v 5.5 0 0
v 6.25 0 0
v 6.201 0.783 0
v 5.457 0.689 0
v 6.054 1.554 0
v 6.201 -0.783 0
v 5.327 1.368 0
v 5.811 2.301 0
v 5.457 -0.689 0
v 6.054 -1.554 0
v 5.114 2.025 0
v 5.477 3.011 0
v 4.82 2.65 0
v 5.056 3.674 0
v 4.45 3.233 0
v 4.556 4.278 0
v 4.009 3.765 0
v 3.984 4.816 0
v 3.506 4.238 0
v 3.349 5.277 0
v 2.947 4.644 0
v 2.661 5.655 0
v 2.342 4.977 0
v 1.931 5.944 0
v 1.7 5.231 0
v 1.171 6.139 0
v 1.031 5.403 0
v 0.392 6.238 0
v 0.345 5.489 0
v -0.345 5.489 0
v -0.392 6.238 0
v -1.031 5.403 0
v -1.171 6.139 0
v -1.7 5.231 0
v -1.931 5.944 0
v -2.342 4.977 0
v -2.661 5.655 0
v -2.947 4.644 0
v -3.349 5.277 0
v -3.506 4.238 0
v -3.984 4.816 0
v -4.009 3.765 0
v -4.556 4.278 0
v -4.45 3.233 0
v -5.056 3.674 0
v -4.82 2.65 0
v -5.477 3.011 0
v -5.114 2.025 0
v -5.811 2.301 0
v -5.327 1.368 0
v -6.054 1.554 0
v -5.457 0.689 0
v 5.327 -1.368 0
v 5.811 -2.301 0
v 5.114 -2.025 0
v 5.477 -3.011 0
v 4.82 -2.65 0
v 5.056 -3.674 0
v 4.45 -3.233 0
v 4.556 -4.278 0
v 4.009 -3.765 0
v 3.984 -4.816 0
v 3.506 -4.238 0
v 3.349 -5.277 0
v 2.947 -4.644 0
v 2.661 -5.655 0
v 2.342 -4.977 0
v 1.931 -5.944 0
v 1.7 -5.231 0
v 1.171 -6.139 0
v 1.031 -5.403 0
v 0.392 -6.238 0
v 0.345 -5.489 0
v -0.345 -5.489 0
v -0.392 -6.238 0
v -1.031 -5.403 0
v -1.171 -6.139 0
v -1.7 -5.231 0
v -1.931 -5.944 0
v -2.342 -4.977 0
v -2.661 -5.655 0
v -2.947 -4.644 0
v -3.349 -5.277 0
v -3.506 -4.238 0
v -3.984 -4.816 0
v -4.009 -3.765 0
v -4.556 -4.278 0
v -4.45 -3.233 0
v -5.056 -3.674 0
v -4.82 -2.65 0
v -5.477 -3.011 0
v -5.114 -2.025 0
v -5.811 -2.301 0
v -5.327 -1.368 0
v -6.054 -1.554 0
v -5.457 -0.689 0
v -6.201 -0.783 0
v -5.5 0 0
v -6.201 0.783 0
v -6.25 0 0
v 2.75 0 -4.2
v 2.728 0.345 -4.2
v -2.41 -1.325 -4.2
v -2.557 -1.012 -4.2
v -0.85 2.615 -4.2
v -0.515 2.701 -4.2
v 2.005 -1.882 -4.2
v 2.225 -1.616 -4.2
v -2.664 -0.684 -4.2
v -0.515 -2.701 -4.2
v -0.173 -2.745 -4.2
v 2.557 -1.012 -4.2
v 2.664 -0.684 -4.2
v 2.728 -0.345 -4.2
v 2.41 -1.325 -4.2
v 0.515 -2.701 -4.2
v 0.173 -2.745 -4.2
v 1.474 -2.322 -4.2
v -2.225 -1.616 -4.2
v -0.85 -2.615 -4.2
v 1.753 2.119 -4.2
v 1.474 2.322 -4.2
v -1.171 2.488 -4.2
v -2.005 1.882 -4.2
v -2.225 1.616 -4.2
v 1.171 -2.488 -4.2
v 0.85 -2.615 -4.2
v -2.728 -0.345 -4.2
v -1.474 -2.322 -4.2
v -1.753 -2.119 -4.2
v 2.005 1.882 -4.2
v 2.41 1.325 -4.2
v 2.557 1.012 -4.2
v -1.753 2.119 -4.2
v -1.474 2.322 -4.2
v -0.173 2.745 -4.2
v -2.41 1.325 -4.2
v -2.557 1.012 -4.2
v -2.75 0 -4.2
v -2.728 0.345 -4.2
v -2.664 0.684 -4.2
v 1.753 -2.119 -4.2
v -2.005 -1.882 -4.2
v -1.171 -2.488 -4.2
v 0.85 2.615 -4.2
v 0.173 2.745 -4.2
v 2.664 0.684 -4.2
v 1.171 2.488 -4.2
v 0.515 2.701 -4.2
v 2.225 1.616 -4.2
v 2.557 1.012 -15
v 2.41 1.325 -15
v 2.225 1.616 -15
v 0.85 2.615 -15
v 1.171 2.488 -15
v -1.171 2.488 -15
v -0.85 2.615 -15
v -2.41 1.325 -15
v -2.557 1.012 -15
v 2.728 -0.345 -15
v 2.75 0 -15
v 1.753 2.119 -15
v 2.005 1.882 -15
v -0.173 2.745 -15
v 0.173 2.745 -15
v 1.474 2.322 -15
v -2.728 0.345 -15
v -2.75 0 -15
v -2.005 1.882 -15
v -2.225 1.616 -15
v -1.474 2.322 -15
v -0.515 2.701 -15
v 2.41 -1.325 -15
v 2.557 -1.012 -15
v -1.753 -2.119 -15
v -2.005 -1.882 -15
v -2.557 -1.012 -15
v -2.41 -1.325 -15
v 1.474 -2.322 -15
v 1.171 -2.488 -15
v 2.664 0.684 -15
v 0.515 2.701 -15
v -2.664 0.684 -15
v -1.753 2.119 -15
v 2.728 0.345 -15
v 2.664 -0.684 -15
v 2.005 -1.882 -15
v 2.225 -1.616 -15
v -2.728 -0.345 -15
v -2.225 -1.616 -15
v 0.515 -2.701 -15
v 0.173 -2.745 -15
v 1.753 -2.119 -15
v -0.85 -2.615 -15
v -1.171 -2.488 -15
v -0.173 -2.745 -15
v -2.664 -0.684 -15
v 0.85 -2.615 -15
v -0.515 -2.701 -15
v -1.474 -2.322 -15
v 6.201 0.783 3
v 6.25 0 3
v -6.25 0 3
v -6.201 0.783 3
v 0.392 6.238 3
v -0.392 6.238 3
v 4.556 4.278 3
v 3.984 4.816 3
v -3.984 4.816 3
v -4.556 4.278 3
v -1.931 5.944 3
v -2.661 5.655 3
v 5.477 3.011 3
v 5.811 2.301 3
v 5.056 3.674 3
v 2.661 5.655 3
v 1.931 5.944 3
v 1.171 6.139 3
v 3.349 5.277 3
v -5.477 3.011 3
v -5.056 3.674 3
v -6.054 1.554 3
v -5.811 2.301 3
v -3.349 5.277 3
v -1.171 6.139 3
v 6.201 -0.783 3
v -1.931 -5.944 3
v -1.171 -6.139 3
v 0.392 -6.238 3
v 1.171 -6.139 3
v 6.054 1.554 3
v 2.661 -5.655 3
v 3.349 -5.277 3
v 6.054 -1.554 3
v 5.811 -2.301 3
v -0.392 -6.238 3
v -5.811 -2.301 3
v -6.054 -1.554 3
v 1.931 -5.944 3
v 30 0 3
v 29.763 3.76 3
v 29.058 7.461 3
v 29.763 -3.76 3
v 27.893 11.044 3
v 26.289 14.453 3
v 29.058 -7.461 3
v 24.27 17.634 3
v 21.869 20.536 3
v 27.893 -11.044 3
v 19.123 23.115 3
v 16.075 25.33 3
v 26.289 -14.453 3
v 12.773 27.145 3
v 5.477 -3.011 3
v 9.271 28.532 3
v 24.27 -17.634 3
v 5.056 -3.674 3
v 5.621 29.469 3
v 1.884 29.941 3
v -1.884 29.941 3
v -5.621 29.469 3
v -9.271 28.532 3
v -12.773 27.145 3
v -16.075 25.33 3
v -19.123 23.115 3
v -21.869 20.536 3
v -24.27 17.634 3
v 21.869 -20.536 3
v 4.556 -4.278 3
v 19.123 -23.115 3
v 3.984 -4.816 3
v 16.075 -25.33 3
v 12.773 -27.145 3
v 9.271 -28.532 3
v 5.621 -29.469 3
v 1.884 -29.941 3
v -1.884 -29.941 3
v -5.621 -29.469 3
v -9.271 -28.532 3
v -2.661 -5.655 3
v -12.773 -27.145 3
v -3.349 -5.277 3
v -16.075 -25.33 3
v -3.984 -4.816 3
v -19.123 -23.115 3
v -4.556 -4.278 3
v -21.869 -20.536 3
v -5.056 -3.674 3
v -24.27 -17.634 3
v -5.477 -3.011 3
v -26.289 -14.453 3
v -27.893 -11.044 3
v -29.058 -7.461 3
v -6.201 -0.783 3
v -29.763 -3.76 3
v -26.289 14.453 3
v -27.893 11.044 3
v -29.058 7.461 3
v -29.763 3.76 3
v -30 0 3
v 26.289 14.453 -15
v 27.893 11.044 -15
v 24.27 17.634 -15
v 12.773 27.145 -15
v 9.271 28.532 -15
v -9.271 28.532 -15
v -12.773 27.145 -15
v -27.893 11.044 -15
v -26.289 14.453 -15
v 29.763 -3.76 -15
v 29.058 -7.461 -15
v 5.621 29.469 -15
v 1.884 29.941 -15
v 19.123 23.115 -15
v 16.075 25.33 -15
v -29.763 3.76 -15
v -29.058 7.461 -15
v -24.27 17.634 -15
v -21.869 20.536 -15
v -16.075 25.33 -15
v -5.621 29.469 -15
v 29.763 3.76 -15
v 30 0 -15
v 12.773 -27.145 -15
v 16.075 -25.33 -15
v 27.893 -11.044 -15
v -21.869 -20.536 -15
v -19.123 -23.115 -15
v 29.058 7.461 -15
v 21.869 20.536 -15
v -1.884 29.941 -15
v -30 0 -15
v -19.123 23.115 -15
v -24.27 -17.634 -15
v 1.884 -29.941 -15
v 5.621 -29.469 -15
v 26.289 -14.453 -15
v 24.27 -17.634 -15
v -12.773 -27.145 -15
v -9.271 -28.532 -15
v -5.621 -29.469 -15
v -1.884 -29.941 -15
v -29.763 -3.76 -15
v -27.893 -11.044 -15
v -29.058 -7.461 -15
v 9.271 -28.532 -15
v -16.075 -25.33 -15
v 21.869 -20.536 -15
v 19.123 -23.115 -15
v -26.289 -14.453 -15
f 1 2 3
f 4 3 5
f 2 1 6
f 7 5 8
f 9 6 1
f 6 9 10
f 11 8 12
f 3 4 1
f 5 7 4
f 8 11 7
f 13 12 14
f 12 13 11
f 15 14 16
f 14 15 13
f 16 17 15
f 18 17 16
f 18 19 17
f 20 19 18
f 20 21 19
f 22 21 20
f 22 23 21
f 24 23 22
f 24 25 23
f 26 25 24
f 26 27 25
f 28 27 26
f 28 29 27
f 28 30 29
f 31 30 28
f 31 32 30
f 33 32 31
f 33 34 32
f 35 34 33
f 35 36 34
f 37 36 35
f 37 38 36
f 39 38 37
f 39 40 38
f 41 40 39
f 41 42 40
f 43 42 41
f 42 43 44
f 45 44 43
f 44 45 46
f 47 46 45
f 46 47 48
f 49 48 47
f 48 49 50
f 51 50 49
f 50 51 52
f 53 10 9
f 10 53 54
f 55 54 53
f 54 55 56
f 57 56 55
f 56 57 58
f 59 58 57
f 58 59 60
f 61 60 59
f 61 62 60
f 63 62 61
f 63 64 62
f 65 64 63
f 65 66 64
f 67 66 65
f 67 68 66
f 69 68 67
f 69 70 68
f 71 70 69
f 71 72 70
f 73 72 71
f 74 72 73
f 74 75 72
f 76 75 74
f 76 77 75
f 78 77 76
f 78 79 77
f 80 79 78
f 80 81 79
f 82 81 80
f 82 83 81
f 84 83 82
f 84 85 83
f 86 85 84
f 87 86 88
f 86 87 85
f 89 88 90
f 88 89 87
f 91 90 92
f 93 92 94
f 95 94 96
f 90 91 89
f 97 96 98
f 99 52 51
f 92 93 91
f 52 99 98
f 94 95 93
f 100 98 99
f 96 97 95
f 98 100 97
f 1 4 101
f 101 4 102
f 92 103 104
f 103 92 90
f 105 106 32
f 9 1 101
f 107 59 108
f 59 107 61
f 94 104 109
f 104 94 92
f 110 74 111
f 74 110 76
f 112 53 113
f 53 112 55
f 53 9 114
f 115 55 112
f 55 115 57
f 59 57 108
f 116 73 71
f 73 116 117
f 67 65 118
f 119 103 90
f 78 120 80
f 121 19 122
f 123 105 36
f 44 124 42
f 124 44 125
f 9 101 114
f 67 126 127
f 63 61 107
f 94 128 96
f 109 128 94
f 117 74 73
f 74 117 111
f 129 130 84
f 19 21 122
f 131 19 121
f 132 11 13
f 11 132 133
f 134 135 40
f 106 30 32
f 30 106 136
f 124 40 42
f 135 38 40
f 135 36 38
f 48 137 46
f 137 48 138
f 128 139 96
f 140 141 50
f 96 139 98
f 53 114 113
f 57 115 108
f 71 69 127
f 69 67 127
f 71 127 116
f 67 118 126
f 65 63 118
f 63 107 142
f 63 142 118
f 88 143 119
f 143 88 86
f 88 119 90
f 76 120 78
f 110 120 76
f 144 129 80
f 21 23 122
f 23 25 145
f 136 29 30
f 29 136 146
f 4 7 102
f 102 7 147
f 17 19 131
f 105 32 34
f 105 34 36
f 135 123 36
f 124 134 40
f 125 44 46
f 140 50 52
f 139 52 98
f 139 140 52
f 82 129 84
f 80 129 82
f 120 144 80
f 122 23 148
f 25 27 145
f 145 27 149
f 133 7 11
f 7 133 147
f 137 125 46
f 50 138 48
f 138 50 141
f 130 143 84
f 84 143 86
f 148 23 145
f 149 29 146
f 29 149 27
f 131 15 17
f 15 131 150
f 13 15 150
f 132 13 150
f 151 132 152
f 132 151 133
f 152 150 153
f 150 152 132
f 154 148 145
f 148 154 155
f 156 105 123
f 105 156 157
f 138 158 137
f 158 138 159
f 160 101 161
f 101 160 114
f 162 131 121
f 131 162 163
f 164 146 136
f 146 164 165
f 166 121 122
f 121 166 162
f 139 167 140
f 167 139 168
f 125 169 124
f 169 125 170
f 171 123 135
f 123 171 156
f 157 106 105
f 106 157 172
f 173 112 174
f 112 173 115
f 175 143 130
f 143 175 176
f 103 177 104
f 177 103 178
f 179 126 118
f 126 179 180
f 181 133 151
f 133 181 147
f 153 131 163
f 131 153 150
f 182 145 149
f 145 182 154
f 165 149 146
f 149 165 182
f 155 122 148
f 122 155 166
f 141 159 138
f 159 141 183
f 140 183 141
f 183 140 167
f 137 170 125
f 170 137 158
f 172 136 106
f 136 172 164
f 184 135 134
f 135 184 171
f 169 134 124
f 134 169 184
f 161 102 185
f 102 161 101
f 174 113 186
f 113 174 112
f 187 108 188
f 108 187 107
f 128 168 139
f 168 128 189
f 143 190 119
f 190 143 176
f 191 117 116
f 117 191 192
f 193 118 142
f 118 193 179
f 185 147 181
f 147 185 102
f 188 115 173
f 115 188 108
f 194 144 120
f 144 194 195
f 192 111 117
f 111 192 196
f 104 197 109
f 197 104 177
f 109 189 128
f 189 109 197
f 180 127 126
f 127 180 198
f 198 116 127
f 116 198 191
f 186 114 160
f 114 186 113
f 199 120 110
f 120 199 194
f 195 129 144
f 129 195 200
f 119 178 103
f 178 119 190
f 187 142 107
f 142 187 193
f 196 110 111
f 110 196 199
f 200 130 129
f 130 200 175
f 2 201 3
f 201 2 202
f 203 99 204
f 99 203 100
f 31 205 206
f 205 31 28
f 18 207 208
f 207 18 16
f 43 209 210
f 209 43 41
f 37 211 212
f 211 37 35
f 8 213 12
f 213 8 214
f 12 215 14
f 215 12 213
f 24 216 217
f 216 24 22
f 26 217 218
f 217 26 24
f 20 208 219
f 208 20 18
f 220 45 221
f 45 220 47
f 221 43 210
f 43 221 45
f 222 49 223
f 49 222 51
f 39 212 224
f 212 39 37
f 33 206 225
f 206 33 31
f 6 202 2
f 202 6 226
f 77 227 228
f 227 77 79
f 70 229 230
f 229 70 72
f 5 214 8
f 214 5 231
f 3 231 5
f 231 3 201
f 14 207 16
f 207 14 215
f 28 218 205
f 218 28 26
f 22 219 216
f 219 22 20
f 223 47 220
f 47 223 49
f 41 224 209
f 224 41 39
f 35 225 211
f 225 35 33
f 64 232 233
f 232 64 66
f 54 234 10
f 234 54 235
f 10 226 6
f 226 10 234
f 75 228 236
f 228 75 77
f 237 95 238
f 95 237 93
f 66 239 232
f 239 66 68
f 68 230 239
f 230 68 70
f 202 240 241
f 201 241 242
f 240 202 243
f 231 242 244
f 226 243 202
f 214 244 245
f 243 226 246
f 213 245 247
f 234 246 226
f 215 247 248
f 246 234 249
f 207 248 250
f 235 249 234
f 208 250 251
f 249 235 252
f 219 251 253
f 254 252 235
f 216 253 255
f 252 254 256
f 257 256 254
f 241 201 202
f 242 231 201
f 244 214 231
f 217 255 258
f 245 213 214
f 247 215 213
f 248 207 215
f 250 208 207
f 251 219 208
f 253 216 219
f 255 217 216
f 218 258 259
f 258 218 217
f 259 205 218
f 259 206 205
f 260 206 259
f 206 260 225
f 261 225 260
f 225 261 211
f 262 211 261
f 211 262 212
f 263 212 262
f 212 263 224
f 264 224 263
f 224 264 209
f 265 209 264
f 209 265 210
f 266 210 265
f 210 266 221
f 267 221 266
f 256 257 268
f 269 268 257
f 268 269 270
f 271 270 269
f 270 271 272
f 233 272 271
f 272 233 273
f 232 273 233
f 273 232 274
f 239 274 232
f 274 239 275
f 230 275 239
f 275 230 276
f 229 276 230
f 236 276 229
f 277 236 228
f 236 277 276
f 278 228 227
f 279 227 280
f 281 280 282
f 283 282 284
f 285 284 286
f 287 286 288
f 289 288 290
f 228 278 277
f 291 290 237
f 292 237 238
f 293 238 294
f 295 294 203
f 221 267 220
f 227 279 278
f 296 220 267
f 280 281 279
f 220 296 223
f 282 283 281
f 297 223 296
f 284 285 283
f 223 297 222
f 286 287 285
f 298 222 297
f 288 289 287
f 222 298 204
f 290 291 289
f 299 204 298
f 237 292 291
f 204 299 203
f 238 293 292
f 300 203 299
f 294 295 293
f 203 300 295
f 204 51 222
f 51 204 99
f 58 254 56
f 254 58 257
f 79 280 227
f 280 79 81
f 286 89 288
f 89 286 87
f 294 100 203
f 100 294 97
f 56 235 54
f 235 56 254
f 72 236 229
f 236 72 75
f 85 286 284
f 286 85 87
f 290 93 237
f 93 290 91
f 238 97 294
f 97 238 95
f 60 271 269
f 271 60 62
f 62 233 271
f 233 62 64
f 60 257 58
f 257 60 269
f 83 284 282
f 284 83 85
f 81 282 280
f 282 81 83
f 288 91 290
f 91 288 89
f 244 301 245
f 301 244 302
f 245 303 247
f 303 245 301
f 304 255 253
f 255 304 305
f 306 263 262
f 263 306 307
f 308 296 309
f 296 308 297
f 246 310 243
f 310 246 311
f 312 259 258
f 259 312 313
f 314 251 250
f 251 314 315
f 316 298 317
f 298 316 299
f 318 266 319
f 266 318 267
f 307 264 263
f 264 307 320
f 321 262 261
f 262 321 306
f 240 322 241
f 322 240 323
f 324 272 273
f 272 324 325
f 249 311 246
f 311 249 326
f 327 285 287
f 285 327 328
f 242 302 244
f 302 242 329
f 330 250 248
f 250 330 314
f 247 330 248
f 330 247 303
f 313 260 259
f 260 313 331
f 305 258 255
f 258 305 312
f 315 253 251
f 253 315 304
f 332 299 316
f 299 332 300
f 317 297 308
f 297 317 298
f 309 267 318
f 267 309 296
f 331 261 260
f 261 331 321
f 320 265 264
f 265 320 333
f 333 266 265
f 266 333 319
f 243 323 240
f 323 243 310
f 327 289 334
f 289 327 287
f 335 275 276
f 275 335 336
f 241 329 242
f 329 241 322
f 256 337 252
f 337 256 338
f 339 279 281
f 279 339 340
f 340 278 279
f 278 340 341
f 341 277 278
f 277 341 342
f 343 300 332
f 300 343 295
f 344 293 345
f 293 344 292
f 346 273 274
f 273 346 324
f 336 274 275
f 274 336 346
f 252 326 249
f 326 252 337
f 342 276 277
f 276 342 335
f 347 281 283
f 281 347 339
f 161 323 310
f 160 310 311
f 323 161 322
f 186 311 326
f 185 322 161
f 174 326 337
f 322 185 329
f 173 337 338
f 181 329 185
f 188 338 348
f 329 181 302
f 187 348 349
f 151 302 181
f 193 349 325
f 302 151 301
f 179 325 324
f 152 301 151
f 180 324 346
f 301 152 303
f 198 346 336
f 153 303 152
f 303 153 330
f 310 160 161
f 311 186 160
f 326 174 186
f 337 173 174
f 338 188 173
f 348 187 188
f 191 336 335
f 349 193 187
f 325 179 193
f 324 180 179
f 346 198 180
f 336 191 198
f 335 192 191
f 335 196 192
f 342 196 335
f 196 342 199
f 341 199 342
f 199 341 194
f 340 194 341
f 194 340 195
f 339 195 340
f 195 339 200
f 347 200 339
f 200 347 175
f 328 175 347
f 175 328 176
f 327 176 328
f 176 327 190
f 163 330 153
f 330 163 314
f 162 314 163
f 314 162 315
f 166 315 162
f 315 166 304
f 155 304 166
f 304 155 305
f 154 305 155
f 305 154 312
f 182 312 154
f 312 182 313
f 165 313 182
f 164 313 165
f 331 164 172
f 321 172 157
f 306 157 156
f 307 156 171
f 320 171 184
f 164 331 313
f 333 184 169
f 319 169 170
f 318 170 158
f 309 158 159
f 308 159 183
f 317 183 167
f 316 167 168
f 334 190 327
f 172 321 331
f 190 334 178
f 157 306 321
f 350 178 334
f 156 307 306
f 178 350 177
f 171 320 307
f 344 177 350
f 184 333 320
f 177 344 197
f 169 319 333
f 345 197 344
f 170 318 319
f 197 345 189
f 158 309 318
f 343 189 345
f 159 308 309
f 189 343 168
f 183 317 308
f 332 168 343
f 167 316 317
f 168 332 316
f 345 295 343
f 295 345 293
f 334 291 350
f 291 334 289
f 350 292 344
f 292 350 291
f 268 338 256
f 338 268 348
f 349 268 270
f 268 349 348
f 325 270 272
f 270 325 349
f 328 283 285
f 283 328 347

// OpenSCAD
$fn = 50;

difference() {
	union() {
		translate(v = [0, 0, -15.0]) {
			cylinder(h = 18, r = 30.0);
		}
	}
	union() {
		translate(v = [0, 0, 0]) {
			rotate(a = [0, 0, 0]) {
				difference() {
					union() {
						translate(v = [0, 0, -18.0]) {
							cylinder(h = 18, r = 2.25);
						}
						translate(v = [0, 0, -4.2]) {
							cylinder(h = 4.2, r1 = 2.75, r2 = 5.5);
						}
						translate(v = [0, 0, -18.0]) {
							cylinder(h = 18, r = 2.75);
						}
						translate(v = [0, 0, -18.0]) {
							cylinder(h = 18, r = 2.25);
						}
					}
					union();
				}
			}
		}
		#cylinder(h = 3, r = 6.25);
	}
}
